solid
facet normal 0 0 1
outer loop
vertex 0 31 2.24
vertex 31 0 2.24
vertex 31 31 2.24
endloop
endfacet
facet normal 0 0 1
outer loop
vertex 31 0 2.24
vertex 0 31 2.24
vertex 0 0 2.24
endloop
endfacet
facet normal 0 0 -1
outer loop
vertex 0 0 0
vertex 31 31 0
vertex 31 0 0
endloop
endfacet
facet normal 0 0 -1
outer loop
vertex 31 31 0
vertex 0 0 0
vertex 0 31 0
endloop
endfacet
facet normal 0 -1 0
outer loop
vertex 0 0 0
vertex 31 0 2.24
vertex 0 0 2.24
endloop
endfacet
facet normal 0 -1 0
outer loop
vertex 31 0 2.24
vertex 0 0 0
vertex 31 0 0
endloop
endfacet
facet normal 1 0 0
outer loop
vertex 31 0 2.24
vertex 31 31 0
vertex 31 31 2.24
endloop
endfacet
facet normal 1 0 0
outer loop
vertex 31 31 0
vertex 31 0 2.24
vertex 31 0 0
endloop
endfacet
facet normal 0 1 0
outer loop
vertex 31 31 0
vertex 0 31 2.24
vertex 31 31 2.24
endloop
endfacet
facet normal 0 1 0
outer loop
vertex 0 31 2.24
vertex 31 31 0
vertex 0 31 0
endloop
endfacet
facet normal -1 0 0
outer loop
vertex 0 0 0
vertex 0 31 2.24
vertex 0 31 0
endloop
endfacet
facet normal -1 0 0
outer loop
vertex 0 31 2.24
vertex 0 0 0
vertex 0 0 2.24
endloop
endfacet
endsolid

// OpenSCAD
/* Warning, this is a very basic generator with a lot of approximation 
input data : [BGA, N7C, 31x31x2.24mm, 896, , A, C04-25466A]
generated by com.zoubworld.electronics.cad.model3d.Basic
Date : Sun Feb 15 10:50:49 CET 2026
*/

//body
color("black")
translate([0,0,0])
cube([31.0,31.0,2.24], center=false);
